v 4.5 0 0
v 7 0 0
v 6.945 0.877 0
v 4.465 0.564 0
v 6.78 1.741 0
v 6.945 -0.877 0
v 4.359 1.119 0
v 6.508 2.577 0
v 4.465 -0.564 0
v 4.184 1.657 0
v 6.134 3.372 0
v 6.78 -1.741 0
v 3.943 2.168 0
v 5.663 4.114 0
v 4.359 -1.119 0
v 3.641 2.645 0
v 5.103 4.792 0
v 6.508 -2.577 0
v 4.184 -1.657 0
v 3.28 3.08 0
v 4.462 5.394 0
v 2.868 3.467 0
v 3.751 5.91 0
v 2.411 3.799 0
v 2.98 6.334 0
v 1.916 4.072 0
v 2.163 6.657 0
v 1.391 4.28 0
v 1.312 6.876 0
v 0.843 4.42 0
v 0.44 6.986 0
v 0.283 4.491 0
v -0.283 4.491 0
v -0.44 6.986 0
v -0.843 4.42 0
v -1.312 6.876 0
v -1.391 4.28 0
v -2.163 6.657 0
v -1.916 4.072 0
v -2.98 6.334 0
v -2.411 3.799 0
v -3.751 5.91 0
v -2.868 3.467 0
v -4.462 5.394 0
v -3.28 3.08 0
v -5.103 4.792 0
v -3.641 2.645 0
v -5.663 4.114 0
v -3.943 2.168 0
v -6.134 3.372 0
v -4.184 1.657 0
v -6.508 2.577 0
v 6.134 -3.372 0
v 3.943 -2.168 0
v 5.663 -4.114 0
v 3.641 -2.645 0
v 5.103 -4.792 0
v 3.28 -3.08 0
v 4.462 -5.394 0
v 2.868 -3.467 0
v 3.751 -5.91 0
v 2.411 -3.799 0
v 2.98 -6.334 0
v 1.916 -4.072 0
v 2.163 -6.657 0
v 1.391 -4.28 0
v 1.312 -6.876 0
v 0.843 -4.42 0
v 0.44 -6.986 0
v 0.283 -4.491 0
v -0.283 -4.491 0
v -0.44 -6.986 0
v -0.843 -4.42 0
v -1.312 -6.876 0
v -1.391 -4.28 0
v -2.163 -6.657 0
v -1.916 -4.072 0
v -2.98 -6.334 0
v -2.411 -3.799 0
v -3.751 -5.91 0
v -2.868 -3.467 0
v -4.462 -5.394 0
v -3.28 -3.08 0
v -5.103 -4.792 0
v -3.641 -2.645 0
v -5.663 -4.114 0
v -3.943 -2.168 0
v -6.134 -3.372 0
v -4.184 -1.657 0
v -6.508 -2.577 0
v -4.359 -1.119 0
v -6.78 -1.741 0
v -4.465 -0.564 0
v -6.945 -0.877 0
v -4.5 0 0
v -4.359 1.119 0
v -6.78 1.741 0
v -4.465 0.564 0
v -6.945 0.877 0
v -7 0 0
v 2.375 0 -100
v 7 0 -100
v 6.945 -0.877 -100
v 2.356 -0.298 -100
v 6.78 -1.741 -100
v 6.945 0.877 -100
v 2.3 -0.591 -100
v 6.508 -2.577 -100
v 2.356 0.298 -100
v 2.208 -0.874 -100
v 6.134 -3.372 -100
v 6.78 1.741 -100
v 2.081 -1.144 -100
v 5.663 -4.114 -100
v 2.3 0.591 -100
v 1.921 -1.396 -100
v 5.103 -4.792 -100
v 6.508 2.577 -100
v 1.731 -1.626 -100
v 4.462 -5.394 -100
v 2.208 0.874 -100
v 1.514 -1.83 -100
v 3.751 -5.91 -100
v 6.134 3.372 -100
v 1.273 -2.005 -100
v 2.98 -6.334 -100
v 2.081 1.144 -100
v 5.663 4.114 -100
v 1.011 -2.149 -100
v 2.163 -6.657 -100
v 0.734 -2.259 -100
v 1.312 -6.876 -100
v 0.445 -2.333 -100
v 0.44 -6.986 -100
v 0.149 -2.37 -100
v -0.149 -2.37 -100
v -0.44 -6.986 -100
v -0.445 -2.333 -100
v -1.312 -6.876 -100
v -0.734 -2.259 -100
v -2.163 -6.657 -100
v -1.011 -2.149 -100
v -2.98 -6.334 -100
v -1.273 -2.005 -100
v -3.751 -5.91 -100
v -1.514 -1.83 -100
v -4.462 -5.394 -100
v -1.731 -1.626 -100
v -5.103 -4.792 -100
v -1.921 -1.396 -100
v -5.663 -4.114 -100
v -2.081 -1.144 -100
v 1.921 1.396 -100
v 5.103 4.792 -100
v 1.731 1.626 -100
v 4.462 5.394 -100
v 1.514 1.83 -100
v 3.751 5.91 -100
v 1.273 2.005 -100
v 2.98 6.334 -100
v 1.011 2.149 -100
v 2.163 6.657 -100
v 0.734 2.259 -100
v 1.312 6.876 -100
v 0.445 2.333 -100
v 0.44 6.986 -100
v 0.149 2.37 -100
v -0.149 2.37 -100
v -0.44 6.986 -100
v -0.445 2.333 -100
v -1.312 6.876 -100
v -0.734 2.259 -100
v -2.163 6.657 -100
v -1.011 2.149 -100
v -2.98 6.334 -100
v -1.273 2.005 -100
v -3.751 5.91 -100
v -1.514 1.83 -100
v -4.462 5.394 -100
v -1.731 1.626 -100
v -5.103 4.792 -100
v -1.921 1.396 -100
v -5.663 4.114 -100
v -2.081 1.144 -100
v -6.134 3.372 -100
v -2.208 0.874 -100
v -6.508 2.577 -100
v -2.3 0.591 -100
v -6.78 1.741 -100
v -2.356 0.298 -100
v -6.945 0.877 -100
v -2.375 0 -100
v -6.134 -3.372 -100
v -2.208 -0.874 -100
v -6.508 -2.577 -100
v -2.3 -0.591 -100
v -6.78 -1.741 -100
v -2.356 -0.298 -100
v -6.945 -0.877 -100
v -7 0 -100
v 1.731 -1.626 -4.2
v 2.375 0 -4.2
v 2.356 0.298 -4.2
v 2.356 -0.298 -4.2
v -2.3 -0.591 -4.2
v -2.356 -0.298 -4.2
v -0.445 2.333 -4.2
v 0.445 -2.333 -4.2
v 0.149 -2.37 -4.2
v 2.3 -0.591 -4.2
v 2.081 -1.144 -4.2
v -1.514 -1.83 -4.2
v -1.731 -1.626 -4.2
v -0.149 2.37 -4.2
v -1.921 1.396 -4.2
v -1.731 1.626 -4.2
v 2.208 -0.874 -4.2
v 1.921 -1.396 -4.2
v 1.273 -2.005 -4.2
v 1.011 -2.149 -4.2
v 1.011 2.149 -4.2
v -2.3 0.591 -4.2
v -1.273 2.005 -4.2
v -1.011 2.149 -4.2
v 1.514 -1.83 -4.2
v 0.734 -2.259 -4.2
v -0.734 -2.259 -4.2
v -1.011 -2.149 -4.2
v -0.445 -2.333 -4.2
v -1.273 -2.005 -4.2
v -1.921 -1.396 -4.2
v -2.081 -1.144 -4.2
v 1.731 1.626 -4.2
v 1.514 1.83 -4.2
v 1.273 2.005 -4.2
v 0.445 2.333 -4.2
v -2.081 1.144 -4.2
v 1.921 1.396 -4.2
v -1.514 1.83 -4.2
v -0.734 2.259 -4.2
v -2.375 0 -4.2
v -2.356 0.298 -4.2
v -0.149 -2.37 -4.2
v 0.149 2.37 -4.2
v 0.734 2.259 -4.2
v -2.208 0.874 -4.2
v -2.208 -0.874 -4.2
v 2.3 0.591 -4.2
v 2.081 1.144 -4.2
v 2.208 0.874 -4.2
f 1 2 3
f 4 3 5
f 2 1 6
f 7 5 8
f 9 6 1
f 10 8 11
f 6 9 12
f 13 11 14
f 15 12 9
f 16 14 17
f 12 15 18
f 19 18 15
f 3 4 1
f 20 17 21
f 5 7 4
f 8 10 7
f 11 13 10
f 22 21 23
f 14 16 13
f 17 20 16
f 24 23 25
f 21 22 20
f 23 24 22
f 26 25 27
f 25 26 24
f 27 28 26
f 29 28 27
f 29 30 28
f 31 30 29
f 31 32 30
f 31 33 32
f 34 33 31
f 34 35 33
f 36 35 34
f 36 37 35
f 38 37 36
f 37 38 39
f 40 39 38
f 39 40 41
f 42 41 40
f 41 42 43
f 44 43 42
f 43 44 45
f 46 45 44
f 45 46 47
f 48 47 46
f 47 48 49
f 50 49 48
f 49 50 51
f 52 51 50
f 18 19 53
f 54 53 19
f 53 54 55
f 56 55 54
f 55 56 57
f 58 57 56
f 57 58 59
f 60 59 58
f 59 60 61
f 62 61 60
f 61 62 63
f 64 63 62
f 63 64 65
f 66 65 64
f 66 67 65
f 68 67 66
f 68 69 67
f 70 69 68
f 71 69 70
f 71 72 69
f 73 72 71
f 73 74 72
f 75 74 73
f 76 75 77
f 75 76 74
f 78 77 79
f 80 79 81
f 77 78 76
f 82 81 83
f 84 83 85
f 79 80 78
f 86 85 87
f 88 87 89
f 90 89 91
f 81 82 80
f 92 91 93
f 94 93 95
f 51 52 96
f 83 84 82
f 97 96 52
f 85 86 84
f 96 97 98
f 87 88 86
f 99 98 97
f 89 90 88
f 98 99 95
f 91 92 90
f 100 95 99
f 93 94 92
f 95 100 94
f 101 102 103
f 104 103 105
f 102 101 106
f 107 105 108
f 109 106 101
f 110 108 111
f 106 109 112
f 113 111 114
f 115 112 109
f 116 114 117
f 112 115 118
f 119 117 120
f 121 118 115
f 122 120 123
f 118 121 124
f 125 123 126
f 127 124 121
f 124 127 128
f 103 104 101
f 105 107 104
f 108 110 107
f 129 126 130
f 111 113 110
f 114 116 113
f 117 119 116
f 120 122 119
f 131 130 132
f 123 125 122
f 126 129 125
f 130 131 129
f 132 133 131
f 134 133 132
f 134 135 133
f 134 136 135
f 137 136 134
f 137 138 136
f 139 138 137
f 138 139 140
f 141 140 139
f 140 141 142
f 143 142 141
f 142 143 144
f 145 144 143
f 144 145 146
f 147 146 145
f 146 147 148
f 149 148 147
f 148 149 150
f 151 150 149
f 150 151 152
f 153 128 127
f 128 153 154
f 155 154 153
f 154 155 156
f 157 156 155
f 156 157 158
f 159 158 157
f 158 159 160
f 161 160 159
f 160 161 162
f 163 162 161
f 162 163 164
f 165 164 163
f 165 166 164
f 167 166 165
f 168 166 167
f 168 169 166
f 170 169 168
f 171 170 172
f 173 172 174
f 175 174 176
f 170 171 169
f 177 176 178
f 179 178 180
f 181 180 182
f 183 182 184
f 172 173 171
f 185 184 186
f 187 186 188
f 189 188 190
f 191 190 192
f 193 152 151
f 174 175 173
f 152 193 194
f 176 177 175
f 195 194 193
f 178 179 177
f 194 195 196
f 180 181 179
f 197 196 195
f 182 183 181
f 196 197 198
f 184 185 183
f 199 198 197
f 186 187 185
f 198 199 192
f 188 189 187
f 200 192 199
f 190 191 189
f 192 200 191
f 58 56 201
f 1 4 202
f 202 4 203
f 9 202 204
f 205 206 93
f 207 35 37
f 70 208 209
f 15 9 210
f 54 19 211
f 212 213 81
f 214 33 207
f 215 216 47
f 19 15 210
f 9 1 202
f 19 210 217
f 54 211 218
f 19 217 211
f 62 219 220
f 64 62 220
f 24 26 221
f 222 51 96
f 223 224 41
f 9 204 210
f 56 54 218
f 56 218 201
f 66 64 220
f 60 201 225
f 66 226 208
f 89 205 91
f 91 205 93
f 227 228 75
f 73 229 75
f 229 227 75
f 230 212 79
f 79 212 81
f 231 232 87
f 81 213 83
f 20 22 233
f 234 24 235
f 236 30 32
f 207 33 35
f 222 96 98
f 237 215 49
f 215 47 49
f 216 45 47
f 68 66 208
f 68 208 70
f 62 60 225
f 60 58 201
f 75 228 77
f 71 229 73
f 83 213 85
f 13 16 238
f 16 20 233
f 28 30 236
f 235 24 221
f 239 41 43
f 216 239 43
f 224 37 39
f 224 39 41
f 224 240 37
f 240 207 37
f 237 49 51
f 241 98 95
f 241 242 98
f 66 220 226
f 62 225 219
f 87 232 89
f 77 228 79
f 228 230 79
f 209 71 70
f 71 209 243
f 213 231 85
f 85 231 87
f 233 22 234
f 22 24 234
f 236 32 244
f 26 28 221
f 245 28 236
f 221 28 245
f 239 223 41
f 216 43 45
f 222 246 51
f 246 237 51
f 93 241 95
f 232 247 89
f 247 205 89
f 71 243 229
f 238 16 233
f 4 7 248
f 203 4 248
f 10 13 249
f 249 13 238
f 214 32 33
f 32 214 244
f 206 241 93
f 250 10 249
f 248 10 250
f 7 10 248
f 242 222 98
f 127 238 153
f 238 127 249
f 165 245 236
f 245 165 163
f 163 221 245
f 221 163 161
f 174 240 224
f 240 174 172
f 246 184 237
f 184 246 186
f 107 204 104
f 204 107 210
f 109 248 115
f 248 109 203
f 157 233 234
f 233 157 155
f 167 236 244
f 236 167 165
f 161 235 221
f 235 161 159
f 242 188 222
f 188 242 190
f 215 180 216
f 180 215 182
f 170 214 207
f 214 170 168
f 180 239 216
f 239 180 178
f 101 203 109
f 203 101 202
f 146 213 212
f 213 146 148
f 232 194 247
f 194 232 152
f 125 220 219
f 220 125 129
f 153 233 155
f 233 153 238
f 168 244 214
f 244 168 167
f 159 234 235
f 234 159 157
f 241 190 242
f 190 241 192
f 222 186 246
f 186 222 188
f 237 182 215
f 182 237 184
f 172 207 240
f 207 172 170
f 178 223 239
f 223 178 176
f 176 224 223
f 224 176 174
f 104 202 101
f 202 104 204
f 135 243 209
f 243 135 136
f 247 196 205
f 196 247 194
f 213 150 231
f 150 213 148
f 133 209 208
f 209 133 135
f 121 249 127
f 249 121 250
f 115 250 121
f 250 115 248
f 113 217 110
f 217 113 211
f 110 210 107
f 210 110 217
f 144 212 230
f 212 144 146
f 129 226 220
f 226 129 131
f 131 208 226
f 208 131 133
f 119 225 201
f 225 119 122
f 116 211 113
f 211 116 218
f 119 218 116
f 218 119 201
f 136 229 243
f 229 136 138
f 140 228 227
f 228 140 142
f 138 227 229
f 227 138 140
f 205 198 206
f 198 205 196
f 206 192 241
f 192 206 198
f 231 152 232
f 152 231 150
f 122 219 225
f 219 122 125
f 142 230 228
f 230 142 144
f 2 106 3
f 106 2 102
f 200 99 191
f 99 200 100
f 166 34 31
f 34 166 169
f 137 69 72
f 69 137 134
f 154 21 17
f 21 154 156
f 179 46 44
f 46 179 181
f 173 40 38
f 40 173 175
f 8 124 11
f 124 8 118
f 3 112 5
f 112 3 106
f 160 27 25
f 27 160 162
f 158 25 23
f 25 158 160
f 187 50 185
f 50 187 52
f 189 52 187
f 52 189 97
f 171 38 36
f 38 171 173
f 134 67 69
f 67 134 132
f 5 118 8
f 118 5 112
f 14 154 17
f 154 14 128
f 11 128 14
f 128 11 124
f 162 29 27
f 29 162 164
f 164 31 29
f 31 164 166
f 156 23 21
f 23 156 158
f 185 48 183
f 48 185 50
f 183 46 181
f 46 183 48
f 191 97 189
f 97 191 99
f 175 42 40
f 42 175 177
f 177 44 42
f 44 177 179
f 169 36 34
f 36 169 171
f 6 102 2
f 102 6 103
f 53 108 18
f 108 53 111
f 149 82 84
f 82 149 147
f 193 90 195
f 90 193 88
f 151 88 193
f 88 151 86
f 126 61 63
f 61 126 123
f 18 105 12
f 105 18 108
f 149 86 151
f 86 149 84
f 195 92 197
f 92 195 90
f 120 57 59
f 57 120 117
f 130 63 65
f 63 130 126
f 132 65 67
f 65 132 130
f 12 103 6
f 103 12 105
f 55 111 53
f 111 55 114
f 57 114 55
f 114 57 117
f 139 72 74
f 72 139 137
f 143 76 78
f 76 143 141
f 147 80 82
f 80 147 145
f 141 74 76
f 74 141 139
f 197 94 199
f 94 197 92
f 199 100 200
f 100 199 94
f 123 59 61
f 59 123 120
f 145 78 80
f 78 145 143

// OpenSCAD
$fn = 50;


difference() {
	union() {
		translate(v = [0, 0, -100.0000000000]) {
			cylinder(h = 100, r = 7.0000000000);
		}
		cylinder(h = 0, r = 17.0000000000);
	}
	union() {
		translate(v = [0, 0, 0]) {
			rotate(a = [0, 0, 0]) {
				difference() {
					union() {
						#translate(v = [0, 0, -100.0000000000]) {
							cylinder(h = 100, r = 2.2500000000);
						}
						#translate(v = [0, 0, -4.2000000000]) {
							cylinder(h = 4.2000000000, r1 = 2.3750000000, r2 = 4.5000000000);
						}
						#translate(v = [0, 0, -100.0000000000]) {
							cylinder(h = 100, r = 2.3750000000);
						}
						#translate(v = [0, 0, -100.0000000000]) {
							cylinder(h = 100, r = 2.2500000000);
						}
					}
					union();
				}
			}
		}
	}
}
